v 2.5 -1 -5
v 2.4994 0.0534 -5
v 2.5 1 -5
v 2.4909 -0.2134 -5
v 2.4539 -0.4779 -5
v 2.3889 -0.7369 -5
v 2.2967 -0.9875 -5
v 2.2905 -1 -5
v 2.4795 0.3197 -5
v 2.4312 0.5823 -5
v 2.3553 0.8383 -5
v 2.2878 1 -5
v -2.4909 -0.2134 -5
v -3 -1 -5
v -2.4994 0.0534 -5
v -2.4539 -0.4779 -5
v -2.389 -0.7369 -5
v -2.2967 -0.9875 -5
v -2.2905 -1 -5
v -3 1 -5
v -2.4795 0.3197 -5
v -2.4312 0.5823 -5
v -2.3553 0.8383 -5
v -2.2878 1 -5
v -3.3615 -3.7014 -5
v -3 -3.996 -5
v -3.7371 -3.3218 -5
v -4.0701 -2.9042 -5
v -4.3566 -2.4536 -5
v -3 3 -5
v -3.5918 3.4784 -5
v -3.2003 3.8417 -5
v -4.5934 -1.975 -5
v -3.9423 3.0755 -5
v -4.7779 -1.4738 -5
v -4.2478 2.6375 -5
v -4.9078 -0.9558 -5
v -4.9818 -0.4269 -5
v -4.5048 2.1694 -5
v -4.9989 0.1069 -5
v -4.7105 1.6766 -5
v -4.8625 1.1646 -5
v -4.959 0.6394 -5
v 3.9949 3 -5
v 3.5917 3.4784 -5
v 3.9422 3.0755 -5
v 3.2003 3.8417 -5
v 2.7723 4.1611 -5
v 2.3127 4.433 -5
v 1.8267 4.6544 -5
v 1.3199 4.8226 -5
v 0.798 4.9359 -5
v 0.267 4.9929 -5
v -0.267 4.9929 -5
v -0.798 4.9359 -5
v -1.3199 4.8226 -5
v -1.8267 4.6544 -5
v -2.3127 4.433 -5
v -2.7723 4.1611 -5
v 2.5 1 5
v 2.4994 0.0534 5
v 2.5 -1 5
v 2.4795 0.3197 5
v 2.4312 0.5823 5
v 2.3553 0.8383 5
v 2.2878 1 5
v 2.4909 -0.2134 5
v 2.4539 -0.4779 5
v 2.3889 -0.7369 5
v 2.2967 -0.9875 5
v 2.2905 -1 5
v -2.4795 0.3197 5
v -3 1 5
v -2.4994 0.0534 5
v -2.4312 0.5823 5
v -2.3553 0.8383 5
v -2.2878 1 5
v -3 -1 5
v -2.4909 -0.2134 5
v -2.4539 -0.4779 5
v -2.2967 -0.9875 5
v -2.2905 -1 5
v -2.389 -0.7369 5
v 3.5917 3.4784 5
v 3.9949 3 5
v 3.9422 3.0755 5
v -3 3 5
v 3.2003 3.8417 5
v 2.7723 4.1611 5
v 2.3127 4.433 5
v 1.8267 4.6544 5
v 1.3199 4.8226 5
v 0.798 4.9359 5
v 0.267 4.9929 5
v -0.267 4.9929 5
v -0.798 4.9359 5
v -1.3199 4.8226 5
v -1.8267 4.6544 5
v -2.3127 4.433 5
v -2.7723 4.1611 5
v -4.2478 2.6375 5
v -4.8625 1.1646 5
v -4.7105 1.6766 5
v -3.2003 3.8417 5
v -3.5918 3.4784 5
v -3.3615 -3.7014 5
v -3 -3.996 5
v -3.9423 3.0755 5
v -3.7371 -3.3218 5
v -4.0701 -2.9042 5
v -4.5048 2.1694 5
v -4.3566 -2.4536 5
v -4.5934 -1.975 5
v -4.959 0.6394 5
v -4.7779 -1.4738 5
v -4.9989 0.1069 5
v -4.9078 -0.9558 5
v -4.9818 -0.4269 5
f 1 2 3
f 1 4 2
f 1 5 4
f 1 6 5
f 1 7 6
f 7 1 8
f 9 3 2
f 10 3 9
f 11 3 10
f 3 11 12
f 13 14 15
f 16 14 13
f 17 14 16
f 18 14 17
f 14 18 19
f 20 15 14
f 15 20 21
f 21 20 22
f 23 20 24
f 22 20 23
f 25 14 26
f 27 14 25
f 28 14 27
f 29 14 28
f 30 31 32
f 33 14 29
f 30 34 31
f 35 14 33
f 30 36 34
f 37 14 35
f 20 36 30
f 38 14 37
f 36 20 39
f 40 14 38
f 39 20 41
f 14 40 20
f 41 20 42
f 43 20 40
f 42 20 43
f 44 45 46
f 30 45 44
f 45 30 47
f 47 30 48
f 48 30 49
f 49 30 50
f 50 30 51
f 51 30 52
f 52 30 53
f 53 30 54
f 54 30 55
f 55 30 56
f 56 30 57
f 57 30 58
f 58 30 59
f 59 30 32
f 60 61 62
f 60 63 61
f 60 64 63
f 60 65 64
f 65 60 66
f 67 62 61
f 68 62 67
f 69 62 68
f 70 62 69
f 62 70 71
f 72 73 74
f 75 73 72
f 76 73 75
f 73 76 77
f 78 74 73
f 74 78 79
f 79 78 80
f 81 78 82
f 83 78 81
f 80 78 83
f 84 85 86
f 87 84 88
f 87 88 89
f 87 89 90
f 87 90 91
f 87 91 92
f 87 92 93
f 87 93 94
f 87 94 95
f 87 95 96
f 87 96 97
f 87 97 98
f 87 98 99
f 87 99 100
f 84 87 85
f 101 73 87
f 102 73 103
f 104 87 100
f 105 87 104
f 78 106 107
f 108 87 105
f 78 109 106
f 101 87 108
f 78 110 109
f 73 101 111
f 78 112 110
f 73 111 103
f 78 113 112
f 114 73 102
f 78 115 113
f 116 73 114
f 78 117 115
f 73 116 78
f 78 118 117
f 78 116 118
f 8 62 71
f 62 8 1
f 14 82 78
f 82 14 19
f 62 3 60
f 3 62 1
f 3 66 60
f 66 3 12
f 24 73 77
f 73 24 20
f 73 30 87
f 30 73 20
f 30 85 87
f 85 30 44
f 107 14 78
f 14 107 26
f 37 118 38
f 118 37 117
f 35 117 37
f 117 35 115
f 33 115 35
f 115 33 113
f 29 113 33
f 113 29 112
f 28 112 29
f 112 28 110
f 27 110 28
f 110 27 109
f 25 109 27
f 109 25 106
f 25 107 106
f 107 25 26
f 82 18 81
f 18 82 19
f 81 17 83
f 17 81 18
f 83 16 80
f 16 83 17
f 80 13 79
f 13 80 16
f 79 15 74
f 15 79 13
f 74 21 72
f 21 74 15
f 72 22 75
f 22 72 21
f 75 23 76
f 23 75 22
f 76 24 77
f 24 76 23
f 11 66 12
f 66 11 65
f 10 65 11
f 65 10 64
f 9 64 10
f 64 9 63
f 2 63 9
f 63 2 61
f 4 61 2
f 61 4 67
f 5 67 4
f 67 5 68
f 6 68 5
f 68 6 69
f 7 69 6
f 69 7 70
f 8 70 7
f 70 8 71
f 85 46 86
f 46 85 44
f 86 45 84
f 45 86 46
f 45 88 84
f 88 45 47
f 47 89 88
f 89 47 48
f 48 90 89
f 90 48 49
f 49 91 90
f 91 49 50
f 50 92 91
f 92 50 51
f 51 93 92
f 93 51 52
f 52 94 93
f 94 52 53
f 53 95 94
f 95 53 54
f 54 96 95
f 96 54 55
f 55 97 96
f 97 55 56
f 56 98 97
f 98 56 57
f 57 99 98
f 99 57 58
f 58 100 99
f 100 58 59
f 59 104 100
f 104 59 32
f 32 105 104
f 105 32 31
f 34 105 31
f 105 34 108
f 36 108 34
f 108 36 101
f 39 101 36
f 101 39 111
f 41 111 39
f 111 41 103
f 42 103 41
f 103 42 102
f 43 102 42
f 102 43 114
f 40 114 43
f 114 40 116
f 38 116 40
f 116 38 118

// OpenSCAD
// Generated by SolidPython 1.1.3 on 2025-02-20 04:04:12
$fn=50;


intersection() {
	translate(v = [-5.0000000000, -5.0000000000, -5.0000000000]) {
		linear_extrude(height = 10) {
			polygon(points = [[0, 0], [2.0000000000, 0], [2.0000000000, 4.0000000000], [7.5000000000, 4.0000000000], [7.5000000000, 6.0000000000], [2.0000000000, 6.0000000000], [2.0000000000, 8.0000000000], [10, 8.0000000000], [10, 10], [0, 10]]);
		}
	}
	rotate(a = -90, v = [0, 0, 1]) {
		translate(v = [-5.0000000000, -5.0000000000, -5.0000000000]) {
			linear_extrude(height = 10) {
				polygon(points = [[9.3301270189, 7.5000000000], [9.0387948484, 7.9475644476], [8.7013899854, 8.3615044513], [8.3217613875, 8.7370979763], [7.9042396813, 9.0700604263], [7.4535877600, 9.3565935206], [6.9749464512, 9.5934286231], [6.4737758721, 9.7778640289], [5.9557931435, 9.9077957850], [5.4269071715, 9.9817416901], [4.8931512411, 9.9988582039], [4.3606141916, 9.9589500691], [3.8353709579, 9.8624725392], [3.3234132705, 9.7105261849], [2.8305813044, 9.5048443395], [2.3624970575, 9.2477733259], [1.9245002169, 8.9422456905], [1.5215872470, 8.5917467505], [1.1583543913, 8.2002748347], [0.8389452414, 7.7722956725], [0.5670034681, 7.3126914512], [0.3456312568, 6.8267051218], [0.1773539185, 6.3198805903], [0.0640910829, 5.7979994752], [0.0071347997, 5.2670151533], [0.0071347997, 4.7329848467], [0.0640910829, 4.2020005248], [0.1773539185, 3.6801194097], [0.3456312568, 3.1732948782], [0.5670034681, 2.6873085488], [0.8389452414, 2.2277043275], [1.1583543913, 1.7997251653], [1.5215872470, 1.4082532495], [1.9245002169, 1.0577543095], [2.3624970575, 0.7522266741], [2.8305813044, 0.4951556605], [3.3234132705, 0.2894738151], [3.8353709579, 0.1375274608], [4.3606141916, 0.0410499309], [4.8931512411, 0.0011417961], [5.4269071715, 0.0182583099], [5.9557931435, 0.0922042150], [6.4737758721, 0.2221359711], [6.9749464512, 0.4065713769], [7.4535877600, 0.6434064794], [7.9042396813, 0.9299395737], [8.3217613875, 1.2629020237], [8.7013899854, 1.6384955487], [9.0387948484, 2.0524355524], [9.3301270189, 2.5000000000], [7.1650635095, 3.7500000000], [7.0193974242, 3.5262177762], [6.8506949927, 3.3192477743], [6.6608806938, 3.1314510119], [6.4521198406, 2.9649697869], [6.2267938800, 2.8217032397], [5.9874732256, 2.7032856885], [5.7368879360, 2.6110679855], [5.4778965718, 2.5461021075], [5.2134535857, 2.5091291549], [4.9465756205, 2.5005708980], [4.6803070958, 2.5205249654], [4.4176854790, 2.5687637304], [4.1617066352, 2.6447369076], [3.9152906522, 2.7475778302], [3.6812485287, 2.8761133371], [3.4622501085, 3.0288771547], [3.2607936235, 3.2041266248], [3.0791771957, 3.3998625827], [2.9194726207, 3.6138521637], [2.7835017341, 3.8436542744], [2.6728156284, 4.0866474391], [2.5886769593, 4.3400597048], [2.5320455415, 4.6010002624], [2.5035673999, 4.8664924234], [2.5035673999, 5.1335075766], [2.5320455415, 5.3989997376], [2.5886769593, 5.6599402952], [2.6728156284, 5.9133525609], [2.7835017341, 6.1563457256], [2.9194726207, 6.3861478363], [3.0791771957, 6.6001374173], [3.2607936235, 6.7958733752], [3.4622501085, 6.9711228453], [3.6812485287, 7.1238866629], [3.9152906522, 7.2524221698], [4.1617066352, 7.3552630924], [4.4176854790, 7.4312362696], [4.6803070958, 7.4794750346], [4.9465756205, 7.4994291020], [5.2134535857, 7.4908708451], [5.4778965718, 7.4538978925], [5.7368879360, 7.3889320145], [5.9874732256, 7.2967143115], [6.2267938800, 7.1782967603], [6.4521198406, 7.0350302131], [6.6608806938, 6.8685489881], [6.8506949927, 6.6807522257], [7.0193974242, 6.4737822238], [7.1650635095, 6.2500000000]]);
			}
		}
	}
}
/***********************************************
*********      SolidPython code:      **********
************************************************
 
from solid import *
from solid.utils import *

import math
import matplotlib.pyplot as plt
import subprocess
import os

class Hole:
    def __init__(self, x, y, radius):
        """
        Hole defined by:
        :param x: x dimension for center point of the circle as a ratio of letter height
        :param y: y dimension for center point of the circle as a ratio of letter height
        :param radius: radius of circle as a ratio of letter height
        """
        self.x = x
        self.y = y
        self.radius = radius

class Letter3D:
    def __init__(self, name, outer_shape_points, height, holes=None):
        """
        3D Letter defined by:
        :param name: name of letter
        :param outer_shape_points: points defining the outer shape of the letter
        :param heigh: size of cube that letter fits inside
        :param holes: list of Holes
        """
        self.name = name
        self.outer_shape_points = outer_shape_points
        self.holes = holes if holes is None else []
        self.height = height


    def generate(self):
        shape = polygon(points=self.outer_shape_points)

        if self.holes:
            for hole in self.holes:
                circle_hole = circle(r=hole.radius*self.height)
                positioned_hole = translate([hole.x*self.height, hole.y*self.height])(circle_hole)
                shape = difference()(shape, positioned_hole)
        
        shape_3d = linear_extrude(height=self.height)(shape)
        shape_3d = translate([-self.height/2, -self.height/2, -self.height/2])(shape_3d)
        return shape_3d
    
    def render(self):
        scad_render_to_file(self.shape, f"output/{self.name}.scad", file_header='$fn=50;')
        subprocess.run(["C:\\Program Files\\OpenSCAD\\openscad.exe", "-o", f"output\\{self.name}.stl", f"output\\{self.name}.scad"])


class TwoLetter3D:
    def __init__(self, height, letterA, letterA_face, letterB=None, letterB_face=None):
        self.height = height
        self.letterA = letterA
        self.letterB = letterB
        self.letterA_face = letterA_face
        self.letterB_face = letterB_face

    def call_letter_generation(self, letter):
        letter = letter.upper()
        function_name = f"letter_{letter}"
        func = globals().get(function_name)
        if func is None:
            raise ValueError(f"No letter generation function defined for letter '{letter}'.")
        else:
            print(func)
        return func(self.height)
    
    def rotate_object(self, face, shape):
        face = face.lower()
        if face == "z":
            return shape
        if face == "x":
            return rotate(a=90, v=[0,1,0])(shape)
        if face == "y":
            return rotate(a=-90, v=[0,0,1])(shape)
        else:
            raise ValueError("Face must be one of 'x', 'y', or 'z'.")

    def render(self):
        if self.letterA:
            letterA3D = self.call_letter_generation(self.letterA)
            letterA3D = self.rotate_object(self.letterA_face, letterA3D)

        if self.letterB:
            letterB3D = self.call_letter_generation(self.letterB)
            letterB3D = self.rotate_object(self.letterB_face, letterB3D)
            combined = intersection()(letterA3D, letterB3D)
            file_name = self.letterA + self.letterB
            scad_render_to_file(combined, f"output/{file_name}.scad", file_header='$fn=50;')
            subprocess.run(["C:\\Program Files\\OpenSCAD\\openscad.exe", "-o", f"output\\{file_name}.stl", f"output\\{file_name}.scad"])
            return
        else:
            file_name = self.letterA
            scad_render_to_file(letterA3D, f"output/{file_name}.scad", file_header='$fn=50;')
            subprocess.run(["C:\\Program Files\\OpenSCAD\\openscad.exe", "-o", f"output\\{file_name}.stl", f"output\\{file_name}.scad"])
    
                

def arc_points(radius, start_angle, end_angle, center=[0,0], num_points=50):
    angles = [start_angle + i * (end_angle - start_angle) / (num_points - 1)
              for i in range(num_points)]
    points = [
        (center[0] + radius * math.cos(math.radians(angle)),
         center[1] + radius * math.sin(math.radians(angle)))
        for angle in angles
    ]
    return points

def letter_A(h):
    shape_points = [(0,0), (h/2, h), (h, 0), (5/6*h, 0), (2/3*h, 1/3*h), (1/3*h, 1/3*h), (h/6, 0)]
    holes = [Hole(1/2, 7/12, 1/6)]
    A = Letter3D("A", shape_points, h, holes)
    return A.generate()

def letter_B(h):
    top_arc_points = arc_points(h/4, 90, -90, center=[3/4*h, 3/4*h])
    bottom_arc_points = arc_points(h/4, 90, -90, center=[3/4*h, h/4])
    other_points = [(0,0),(0,h)]

    shape_points = top_arc_points + bottom_arc_points + other_points
    holes = [Hole(1/2, 3/4, 1/6), Hole(1/2, 1/4, 1/6)]
    B = Letter3D("B", shape_points, h, holes)
    return B.generate()

def letter_C(h):
    outer_arc_points = arc_points(h/2, 30, 330, center=[h/2,h/2])
    inner_arc_points = arc_points(h/4, 30, 330, center=[h/2,h/2])[::-1]
    shape_points = outer_arc_points + inner_arc_points
    # print(shape_points)
    C = Letter3D("C", shape_points, h)
    return C.generate()


def letter_D(h):
    outer_arc_points = arc_points(h/2, 90, -90, center= [h/2, h/2])
    shape_points = outer_arc_points + [(0,0), (0, h)]
    holes = [Hole(1/2, 1/2, 1/6)]
    D = Letter3D("D", shape_points, h, holes)
    return D.generate()

def letter_E(h):
    points = [(0,0), (h,0), (h,h/5), (h/5,h/5), (h/5,2/5*h), (3/4*h,2/5*h), (3/4*h,3/5*h), (h/5,3/5*h), (h/5,4/5*h), (h,4/5*h), (h,h), (0,h)]
    E = Letter3D("E", points, h)
    return E.generate()

def letter_F(h):
    points = [(0,0), (h/5,0), (h/5,2/5*h), (3/4*h,2/5*h), (3/4*h,3/5*h), (h/5,3/5*h), (h/5,4/5*h), (h,4/5*h), (h,h), (0,h)]
    F = Letter3D("F", points, h)
    return F.generate()

if __name__ == "__main__":
    os.makedirs("output", exist_ok=True)
    # Generate all combos
    letters = [chr(x) for x in range(ord('A'), ord('F') + 1)]
    for letter in letters:
        for other_letter in letters:
            shape = TwoLetter3D(10, letter, "z", other_letter, "y")
            shape.render()
 
 
************************************************/
